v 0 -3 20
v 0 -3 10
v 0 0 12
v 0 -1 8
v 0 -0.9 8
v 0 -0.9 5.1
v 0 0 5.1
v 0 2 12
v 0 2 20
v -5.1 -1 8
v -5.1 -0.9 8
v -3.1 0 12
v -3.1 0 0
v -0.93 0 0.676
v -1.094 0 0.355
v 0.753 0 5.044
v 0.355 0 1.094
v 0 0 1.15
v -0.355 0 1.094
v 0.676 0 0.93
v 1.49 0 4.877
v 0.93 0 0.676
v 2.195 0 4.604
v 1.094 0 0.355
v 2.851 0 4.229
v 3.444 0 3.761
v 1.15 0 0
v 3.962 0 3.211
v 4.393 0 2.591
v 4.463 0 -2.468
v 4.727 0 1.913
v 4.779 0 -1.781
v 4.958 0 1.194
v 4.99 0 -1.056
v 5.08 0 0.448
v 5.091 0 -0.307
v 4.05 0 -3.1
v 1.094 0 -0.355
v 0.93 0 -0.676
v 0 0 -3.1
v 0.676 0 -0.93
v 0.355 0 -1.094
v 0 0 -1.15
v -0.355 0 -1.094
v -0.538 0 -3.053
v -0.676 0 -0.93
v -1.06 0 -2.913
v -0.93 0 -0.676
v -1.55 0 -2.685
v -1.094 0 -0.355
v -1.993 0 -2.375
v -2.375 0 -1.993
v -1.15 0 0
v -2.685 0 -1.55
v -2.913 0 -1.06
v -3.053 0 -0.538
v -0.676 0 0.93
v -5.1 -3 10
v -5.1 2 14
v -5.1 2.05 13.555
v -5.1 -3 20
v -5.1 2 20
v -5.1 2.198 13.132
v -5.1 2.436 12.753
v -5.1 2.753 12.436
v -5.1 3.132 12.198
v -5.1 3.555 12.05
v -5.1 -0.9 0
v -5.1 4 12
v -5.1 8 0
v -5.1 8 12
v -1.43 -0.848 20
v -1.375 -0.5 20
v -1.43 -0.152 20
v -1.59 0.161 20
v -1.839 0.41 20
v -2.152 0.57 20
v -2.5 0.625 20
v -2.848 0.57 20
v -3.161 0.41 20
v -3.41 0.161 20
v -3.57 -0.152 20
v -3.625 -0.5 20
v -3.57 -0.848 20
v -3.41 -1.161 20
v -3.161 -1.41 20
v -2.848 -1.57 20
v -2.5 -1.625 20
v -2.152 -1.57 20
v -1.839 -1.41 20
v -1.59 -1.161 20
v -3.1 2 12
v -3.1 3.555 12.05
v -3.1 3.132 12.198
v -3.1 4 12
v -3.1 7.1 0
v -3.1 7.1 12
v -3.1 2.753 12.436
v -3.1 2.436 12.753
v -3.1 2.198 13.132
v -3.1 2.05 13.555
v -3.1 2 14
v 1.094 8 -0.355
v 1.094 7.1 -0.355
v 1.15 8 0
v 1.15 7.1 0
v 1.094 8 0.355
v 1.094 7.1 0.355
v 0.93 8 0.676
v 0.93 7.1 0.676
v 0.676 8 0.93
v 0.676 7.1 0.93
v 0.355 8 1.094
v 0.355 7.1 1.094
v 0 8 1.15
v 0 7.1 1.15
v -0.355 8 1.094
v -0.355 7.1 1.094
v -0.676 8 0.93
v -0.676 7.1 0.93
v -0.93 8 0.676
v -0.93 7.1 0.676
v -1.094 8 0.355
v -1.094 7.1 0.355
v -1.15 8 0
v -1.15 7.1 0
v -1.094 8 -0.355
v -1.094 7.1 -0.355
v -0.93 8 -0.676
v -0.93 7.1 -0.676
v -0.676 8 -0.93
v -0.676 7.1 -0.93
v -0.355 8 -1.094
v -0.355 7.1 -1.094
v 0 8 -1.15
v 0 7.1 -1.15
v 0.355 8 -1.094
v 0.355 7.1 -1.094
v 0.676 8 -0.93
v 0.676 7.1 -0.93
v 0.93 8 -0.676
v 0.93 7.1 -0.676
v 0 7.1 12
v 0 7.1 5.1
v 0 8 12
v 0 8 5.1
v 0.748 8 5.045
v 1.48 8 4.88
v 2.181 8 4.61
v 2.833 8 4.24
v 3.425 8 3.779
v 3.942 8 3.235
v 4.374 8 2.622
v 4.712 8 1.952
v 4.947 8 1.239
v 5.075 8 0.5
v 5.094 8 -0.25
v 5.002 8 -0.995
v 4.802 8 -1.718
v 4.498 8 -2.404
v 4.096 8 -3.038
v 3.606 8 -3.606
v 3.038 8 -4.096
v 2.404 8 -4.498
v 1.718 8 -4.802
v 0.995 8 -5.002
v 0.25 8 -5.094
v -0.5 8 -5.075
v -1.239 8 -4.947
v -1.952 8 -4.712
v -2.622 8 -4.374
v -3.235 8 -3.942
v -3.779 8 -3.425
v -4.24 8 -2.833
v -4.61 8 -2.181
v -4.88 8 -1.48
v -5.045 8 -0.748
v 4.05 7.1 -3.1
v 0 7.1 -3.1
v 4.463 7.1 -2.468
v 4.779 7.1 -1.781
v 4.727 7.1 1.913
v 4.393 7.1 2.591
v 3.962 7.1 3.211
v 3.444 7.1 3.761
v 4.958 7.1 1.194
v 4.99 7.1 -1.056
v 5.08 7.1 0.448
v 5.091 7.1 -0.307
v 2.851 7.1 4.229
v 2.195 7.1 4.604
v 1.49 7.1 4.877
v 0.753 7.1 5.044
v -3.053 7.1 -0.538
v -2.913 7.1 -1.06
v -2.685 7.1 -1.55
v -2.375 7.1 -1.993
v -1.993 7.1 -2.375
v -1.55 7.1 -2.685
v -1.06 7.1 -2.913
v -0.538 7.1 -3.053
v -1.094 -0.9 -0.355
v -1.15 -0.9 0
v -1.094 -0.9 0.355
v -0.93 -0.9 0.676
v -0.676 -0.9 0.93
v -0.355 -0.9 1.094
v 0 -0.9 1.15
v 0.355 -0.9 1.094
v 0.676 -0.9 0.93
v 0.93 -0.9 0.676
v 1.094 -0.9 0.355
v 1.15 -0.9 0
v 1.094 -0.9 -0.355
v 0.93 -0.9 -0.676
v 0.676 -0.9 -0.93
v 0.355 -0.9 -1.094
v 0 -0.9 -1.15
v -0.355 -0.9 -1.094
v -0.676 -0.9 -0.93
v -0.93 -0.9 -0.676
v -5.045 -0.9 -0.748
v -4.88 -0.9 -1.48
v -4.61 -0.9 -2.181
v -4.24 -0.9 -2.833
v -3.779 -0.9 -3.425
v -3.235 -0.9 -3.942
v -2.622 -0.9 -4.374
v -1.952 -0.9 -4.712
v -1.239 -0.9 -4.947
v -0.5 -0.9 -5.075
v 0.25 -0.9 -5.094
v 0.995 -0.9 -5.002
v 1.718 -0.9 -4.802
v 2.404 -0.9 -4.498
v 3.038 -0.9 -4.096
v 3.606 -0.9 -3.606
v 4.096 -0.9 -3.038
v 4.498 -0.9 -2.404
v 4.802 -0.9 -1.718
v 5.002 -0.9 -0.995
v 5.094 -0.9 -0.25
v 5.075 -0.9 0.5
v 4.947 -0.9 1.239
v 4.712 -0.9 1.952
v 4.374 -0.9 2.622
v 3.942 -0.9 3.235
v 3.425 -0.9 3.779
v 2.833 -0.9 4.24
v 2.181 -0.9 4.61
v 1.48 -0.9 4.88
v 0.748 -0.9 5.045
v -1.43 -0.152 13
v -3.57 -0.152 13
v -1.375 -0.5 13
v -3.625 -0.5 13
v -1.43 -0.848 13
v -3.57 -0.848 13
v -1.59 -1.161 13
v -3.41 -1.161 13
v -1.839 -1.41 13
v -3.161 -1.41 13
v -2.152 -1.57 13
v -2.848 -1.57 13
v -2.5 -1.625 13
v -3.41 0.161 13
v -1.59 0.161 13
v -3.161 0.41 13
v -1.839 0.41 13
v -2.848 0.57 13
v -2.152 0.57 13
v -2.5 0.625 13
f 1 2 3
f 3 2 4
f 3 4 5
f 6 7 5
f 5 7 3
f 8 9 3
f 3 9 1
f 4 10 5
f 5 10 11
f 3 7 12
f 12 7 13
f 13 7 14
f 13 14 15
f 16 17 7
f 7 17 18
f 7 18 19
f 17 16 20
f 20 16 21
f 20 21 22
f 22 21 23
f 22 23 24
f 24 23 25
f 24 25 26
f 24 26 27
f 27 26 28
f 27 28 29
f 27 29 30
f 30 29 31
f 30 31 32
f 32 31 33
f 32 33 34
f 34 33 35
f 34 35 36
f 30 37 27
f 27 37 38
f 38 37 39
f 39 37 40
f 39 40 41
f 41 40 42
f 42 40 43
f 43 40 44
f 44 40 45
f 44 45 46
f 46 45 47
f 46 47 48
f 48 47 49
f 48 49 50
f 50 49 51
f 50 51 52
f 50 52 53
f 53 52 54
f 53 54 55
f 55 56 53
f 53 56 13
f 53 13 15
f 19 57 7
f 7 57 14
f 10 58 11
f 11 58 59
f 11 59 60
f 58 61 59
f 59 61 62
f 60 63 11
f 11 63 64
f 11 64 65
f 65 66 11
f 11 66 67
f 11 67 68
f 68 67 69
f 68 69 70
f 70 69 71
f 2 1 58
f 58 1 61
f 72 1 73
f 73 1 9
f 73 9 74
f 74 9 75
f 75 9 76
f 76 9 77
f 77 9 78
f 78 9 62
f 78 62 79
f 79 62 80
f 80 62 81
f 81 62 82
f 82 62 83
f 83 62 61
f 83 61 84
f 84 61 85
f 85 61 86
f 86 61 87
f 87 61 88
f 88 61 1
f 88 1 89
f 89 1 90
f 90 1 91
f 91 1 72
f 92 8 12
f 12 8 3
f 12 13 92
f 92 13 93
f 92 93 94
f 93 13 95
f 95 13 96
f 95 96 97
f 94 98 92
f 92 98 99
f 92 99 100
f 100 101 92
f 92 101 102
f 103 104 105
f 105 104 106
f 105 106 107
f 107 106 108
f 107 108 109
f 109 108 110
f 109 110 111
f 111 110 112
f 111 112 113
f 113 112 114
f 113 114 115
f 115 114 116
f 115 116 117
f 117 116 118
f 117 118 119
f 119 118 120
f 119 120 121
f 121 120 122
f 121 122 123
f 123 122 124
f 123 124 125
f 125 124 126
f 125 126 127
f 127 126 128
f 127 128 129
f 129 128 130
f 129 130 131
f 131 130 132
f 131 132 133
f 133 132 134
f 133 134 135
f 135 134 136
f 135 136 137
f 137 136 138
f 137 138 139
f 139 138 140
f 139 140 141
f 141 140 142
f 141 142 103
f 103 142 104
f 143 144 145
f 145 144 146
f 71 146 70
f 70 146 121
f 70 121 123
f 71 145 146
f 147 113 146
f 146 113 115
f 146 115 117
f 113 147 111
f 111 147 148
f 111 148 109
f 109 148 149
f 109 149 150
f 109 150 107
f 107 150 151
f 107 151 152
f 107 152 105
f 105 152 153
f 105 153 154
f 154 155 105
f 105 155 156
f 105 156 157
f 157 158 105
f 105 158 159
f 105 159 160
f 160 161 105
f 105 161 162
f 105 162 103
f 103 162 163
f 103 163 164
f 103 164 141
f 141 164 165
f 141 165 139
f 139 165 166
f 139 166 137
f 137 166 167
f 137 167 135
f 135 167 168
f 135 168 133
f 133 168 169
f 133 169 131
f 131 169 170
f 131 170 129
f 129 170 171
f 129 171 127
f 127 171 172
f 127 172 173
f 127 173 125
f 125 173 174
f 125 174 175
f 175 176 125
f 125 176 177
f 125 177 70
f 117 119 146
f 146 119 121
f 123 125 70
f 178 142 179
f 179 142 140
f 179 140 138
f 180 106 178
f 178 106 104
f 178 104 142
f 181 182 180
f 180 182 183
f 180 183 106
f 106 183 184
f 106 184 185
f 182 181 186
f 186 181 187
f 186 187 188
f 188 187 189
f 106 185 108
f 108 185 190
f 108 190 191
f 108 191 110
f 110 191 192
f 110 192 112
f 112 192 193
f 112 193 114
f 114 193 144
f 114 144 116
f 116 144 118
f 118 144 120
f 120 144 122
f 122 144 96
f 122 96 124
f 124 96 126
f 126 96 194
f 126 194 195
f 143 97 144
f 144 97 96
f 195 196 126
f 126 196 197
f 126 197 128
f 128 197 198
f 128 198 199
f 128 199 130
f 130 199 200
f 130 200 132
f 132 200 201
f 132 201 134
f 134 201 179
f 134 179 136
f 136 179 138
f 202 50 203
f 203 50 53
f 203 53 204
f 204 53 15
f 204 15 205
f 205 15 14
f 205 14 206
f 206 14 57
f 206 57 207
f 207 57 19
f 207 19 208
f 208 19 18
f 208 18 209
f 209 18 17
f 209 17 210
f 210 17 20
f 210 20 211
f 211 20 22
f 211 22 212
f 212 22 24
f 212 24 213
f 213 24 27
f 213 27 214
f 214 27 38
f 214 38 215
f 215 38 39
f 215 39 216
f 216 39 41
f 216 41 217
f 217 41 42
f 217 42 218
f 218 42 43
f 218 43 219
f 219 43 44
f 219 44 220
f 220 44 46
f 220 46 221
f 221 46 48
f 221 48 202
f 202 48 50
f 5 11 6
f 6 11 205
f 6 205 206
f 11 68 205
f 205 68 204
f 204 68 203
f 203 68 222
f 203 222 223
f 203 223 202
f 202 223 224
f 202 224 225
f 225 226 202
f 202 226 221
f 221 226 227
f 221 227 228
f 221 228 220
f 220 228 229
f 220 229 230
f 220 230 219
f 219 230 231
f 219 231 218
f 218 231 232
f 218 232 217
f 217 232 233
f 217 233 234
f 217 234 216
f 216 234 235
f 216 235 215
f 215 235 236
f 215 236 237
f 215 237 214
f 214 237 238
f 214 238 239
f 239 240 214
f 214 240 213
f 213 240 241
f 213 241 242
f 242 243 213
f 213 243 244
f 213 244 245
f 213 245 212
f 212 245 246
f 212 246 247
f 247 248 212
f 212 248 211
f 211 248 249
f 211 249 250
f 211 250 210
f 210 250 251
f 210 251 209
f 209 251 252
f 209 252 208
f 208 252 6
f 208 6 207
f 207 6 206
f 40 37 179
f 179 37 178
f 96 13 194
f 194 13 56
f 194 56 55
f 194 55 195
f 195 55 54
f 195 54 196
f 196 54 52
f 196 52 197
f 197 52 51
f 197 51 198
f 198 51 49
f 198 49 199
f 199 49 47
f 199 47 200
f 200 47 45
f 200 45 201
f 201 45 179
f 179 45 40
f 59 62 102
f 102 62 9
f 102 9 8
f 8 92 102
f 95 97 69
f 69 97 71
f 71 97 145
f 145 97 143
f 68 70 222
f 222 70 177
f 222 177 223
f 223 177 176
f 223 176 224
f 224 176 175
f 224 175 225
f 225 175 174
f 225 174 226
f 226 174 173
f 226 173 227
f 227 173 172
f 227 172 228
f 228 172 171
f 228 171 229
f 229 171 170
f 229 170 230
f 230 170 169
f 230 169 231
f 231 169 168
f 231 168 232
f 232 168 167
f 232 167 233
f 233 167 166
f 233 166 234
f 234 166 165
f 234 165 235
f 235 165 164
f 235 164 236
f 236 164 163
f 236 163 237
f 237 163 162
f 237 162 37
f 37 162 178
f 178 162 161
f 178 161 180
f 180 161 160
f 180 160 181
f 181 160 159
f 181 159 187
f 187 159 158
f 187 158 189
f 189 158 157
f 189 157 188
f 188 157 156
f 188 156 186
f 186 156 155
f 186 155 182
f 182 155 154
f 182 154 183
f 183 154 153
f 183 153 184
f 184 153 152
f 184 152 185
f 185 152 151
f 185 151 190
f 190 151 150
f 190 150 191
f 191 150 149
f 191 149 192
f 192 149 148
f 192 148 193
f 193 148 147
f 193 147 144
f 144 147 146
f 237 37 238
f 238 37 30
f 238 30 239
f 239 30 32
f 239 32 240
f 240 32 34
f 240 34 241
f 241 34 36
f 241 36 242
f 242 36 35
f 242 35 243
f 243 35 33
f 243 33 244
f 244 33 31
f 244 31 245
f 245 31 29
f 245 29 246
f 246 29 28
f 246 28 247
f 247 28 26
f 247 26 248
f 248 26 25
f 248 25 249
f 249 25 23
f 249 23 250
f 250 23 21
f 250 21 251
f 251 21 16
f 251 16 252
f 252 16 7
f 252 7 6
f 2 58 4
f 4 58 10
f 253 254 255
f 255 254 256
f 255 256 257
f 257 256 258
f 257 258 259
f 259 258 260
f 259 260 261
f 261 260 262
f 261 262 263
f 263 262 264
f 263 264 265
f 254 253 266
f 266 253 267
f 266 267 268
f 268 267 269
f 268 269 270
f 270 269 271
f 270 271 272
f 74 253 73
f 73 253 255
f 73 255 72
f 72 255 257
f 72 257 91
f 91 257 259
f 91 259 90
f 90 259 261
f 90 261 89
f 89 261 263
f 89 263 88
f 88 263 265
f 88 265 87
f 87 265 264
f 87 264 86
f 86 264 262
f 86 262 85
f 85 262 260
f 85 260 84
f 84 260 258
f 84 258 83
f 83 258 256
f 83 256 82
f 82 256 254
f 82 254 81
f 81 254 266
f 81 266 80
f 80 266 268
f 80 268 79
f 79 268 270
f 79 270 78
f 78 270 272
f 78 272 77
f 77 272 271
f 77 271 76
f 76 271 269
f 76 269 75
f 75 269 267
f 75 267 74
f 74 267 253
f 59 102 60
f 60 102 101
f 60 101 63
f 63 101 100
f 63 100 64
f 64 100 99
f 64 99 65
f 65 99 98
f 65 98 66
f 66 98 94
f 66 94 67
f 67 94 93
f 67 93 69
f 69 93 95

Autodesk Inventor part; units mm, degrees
ref_plane "YZ Plane" through (0, 0, 0) normal (1, 0, 0) x (0, 1, 0)
ref_plane "XZ Plane" through (0, 0, 0) normal (0, 1, 0) x (-1, 0, 0)
ref_plane "XY Plane" through (0, 0, 0) normal (0, 0, 1) x (1, 0, 0)
sketch "スケッチ1" plane through (0, 0, 0) normal (0, 1, 0) x (-1, 0, 0)
  circle A0 centre (0, 0) radius 1.15
  circle A1 centre (0, 0) radius 3.1
  circle A2 centre (0, 0) radius 5.1
  line L0 (3.1, 0) -> (5.1, 0)
  line L1 (5.1, 0) -> (5.1, 10)
  line L2 (5.1, 10) -> (3.1, 10)
  line L3 (3.1, 10) -> (3.1, 0)
  line L4 (0, 3.1) -> (3.1, 3.1)
  line L5 (5.1, 0) -> (1.8843, -2.4616)
  line L6 (5.1, 10) -> (0, 10)
  line L7 (0, 10) -> (0, 20)
  line L8 (0, 20) -> (5.1, 20)
  line L9 (5.1, 20) -> (5.1, 10)
  line L10 (0, 10) -> (0, 0)
  line L11 (0, -3.1) -> (-4.0497, -3.1)
  line L12 (3.1, 10) -> (5.1, 10)
  line L13 (5.1, 10) -> (5.1, 12)
  line L14 (5.1, 12) -> (3.1, 12)
  line L15 (3.1, 12) -> (3.1, 10)
  line L16 (3.1, 12) -> (0, 12)
  line L17 (0, 12) -> (0, 10)
  line L18 (0, 10) -> (3.1, 10)
  line L19 (3.1, 10) -> (3.1, 12)
  line L20 (0, 12) -> (5.1, 12)
  line L21 (5.1, 12) -> (5.1, 8)
  line L22 (5.1, 8) -> (0, 8)
  line L23 (0, 8) -> (0, 12)
  point P0 (0, 5.1)
  dimension "d2" = 10.2
  dimension "d0" = 2.3
  dimension "d1" = 6.2
  dimension "d3" = 10
  dimension "d4" = 10
  dimension "d7" = 2
  dimension "d8" = 2
  dimension "d22" = 4
extrude "押し出し1" add sketch "スケッチ1" along normal blind 7.1 contours L0 L5 A1 | L3 A2 L0 | A1 L5 A2 L11 | A2 L3 L22 L1 | L22 L3 L2 L1 | L2 L15 L14 L9
extrude "押し出し2" add sketch "スケッチ1" against normal blind 0.9
sketch "スケッチ2" plane through (0, 7.1, 0) normal (0, 1, 0) x (1, 0, 0)
  circle A0 centre (0, 0) radius 1.15
  circle A1 centre (0, 0) radius 3.1
  circle A2 centre (0, 0) radius 5.1
  line L0 (0, -12) -> (-5.1, -12)
  line L1 (0, 0) -> (-5.1, 0)
  line L2 (-5.1, 0) -> (-5.1, -12)
  line L3 (-5.1, -12) -> (0, -12)
  line L4 (0, -12) -> (0, 0)
  point P0 (0, -5.1)
  dimension "d11" = 2.3
  dimension "d12" = 6.2
  dimension "d13" = 10.2
  dimension "d14" = 5.1
  dimension "d15" = 12
extrude "押し出し3" add sketch "スケッチ2" along normal blind 0.9 contours A0 L1 A1 L4 | A0 L4 A1 L1 | L1 A2 L4 A1 | A1 L4 A2 L1 | A2 L4 L0 L2
extrude "押し出し4" add sketch "スケッチ1" along normal blind 2 contours L7 L8 L9 L14 L16
extrude "押し出し5" add sketch "スケッチ1" against normal blind 3 contours L10 L6 L3 L22 | L22 L3 L2 L1 | L7 L16 L15 L6 | L2 L15 L14 L9 | L7 L8 L9 L14 L16
chamfer "面取り1" distance 2 angle 45 1 edges at (-2.55, -3, 8)
sketch "スケッチ3" plane through (-5.1, 2, 20) normal (0, 0, 1) x (1, 0, 0)
  line L0 (0, -5) -> (0, 0) projected
  line L1 (0, 0) -> (2.6, 0)
  line L2 (2.6, 0) -> (2.6, -2.5)
  line L3 (2.6, -2.5) -> (0, -2.5)
  line L4 (0, -2.5) -> (0, 0)
  circle A0 centre (2.6, -2.5) radius 1.125
  point P0 (5.1, -2)
  dimension "d26" = 2.6
  dimension "d27" = 2.5
  dimension "d28" = 2.25
hole "穴1" at (-2.5, -0.5, 20) direction (0, 0, -1) diameter 2.25 depth 7
fillet "フィレット1" radius 2 1 edges at (-4.1, 2, 12)
properties part number "srod2.5_2.25"
